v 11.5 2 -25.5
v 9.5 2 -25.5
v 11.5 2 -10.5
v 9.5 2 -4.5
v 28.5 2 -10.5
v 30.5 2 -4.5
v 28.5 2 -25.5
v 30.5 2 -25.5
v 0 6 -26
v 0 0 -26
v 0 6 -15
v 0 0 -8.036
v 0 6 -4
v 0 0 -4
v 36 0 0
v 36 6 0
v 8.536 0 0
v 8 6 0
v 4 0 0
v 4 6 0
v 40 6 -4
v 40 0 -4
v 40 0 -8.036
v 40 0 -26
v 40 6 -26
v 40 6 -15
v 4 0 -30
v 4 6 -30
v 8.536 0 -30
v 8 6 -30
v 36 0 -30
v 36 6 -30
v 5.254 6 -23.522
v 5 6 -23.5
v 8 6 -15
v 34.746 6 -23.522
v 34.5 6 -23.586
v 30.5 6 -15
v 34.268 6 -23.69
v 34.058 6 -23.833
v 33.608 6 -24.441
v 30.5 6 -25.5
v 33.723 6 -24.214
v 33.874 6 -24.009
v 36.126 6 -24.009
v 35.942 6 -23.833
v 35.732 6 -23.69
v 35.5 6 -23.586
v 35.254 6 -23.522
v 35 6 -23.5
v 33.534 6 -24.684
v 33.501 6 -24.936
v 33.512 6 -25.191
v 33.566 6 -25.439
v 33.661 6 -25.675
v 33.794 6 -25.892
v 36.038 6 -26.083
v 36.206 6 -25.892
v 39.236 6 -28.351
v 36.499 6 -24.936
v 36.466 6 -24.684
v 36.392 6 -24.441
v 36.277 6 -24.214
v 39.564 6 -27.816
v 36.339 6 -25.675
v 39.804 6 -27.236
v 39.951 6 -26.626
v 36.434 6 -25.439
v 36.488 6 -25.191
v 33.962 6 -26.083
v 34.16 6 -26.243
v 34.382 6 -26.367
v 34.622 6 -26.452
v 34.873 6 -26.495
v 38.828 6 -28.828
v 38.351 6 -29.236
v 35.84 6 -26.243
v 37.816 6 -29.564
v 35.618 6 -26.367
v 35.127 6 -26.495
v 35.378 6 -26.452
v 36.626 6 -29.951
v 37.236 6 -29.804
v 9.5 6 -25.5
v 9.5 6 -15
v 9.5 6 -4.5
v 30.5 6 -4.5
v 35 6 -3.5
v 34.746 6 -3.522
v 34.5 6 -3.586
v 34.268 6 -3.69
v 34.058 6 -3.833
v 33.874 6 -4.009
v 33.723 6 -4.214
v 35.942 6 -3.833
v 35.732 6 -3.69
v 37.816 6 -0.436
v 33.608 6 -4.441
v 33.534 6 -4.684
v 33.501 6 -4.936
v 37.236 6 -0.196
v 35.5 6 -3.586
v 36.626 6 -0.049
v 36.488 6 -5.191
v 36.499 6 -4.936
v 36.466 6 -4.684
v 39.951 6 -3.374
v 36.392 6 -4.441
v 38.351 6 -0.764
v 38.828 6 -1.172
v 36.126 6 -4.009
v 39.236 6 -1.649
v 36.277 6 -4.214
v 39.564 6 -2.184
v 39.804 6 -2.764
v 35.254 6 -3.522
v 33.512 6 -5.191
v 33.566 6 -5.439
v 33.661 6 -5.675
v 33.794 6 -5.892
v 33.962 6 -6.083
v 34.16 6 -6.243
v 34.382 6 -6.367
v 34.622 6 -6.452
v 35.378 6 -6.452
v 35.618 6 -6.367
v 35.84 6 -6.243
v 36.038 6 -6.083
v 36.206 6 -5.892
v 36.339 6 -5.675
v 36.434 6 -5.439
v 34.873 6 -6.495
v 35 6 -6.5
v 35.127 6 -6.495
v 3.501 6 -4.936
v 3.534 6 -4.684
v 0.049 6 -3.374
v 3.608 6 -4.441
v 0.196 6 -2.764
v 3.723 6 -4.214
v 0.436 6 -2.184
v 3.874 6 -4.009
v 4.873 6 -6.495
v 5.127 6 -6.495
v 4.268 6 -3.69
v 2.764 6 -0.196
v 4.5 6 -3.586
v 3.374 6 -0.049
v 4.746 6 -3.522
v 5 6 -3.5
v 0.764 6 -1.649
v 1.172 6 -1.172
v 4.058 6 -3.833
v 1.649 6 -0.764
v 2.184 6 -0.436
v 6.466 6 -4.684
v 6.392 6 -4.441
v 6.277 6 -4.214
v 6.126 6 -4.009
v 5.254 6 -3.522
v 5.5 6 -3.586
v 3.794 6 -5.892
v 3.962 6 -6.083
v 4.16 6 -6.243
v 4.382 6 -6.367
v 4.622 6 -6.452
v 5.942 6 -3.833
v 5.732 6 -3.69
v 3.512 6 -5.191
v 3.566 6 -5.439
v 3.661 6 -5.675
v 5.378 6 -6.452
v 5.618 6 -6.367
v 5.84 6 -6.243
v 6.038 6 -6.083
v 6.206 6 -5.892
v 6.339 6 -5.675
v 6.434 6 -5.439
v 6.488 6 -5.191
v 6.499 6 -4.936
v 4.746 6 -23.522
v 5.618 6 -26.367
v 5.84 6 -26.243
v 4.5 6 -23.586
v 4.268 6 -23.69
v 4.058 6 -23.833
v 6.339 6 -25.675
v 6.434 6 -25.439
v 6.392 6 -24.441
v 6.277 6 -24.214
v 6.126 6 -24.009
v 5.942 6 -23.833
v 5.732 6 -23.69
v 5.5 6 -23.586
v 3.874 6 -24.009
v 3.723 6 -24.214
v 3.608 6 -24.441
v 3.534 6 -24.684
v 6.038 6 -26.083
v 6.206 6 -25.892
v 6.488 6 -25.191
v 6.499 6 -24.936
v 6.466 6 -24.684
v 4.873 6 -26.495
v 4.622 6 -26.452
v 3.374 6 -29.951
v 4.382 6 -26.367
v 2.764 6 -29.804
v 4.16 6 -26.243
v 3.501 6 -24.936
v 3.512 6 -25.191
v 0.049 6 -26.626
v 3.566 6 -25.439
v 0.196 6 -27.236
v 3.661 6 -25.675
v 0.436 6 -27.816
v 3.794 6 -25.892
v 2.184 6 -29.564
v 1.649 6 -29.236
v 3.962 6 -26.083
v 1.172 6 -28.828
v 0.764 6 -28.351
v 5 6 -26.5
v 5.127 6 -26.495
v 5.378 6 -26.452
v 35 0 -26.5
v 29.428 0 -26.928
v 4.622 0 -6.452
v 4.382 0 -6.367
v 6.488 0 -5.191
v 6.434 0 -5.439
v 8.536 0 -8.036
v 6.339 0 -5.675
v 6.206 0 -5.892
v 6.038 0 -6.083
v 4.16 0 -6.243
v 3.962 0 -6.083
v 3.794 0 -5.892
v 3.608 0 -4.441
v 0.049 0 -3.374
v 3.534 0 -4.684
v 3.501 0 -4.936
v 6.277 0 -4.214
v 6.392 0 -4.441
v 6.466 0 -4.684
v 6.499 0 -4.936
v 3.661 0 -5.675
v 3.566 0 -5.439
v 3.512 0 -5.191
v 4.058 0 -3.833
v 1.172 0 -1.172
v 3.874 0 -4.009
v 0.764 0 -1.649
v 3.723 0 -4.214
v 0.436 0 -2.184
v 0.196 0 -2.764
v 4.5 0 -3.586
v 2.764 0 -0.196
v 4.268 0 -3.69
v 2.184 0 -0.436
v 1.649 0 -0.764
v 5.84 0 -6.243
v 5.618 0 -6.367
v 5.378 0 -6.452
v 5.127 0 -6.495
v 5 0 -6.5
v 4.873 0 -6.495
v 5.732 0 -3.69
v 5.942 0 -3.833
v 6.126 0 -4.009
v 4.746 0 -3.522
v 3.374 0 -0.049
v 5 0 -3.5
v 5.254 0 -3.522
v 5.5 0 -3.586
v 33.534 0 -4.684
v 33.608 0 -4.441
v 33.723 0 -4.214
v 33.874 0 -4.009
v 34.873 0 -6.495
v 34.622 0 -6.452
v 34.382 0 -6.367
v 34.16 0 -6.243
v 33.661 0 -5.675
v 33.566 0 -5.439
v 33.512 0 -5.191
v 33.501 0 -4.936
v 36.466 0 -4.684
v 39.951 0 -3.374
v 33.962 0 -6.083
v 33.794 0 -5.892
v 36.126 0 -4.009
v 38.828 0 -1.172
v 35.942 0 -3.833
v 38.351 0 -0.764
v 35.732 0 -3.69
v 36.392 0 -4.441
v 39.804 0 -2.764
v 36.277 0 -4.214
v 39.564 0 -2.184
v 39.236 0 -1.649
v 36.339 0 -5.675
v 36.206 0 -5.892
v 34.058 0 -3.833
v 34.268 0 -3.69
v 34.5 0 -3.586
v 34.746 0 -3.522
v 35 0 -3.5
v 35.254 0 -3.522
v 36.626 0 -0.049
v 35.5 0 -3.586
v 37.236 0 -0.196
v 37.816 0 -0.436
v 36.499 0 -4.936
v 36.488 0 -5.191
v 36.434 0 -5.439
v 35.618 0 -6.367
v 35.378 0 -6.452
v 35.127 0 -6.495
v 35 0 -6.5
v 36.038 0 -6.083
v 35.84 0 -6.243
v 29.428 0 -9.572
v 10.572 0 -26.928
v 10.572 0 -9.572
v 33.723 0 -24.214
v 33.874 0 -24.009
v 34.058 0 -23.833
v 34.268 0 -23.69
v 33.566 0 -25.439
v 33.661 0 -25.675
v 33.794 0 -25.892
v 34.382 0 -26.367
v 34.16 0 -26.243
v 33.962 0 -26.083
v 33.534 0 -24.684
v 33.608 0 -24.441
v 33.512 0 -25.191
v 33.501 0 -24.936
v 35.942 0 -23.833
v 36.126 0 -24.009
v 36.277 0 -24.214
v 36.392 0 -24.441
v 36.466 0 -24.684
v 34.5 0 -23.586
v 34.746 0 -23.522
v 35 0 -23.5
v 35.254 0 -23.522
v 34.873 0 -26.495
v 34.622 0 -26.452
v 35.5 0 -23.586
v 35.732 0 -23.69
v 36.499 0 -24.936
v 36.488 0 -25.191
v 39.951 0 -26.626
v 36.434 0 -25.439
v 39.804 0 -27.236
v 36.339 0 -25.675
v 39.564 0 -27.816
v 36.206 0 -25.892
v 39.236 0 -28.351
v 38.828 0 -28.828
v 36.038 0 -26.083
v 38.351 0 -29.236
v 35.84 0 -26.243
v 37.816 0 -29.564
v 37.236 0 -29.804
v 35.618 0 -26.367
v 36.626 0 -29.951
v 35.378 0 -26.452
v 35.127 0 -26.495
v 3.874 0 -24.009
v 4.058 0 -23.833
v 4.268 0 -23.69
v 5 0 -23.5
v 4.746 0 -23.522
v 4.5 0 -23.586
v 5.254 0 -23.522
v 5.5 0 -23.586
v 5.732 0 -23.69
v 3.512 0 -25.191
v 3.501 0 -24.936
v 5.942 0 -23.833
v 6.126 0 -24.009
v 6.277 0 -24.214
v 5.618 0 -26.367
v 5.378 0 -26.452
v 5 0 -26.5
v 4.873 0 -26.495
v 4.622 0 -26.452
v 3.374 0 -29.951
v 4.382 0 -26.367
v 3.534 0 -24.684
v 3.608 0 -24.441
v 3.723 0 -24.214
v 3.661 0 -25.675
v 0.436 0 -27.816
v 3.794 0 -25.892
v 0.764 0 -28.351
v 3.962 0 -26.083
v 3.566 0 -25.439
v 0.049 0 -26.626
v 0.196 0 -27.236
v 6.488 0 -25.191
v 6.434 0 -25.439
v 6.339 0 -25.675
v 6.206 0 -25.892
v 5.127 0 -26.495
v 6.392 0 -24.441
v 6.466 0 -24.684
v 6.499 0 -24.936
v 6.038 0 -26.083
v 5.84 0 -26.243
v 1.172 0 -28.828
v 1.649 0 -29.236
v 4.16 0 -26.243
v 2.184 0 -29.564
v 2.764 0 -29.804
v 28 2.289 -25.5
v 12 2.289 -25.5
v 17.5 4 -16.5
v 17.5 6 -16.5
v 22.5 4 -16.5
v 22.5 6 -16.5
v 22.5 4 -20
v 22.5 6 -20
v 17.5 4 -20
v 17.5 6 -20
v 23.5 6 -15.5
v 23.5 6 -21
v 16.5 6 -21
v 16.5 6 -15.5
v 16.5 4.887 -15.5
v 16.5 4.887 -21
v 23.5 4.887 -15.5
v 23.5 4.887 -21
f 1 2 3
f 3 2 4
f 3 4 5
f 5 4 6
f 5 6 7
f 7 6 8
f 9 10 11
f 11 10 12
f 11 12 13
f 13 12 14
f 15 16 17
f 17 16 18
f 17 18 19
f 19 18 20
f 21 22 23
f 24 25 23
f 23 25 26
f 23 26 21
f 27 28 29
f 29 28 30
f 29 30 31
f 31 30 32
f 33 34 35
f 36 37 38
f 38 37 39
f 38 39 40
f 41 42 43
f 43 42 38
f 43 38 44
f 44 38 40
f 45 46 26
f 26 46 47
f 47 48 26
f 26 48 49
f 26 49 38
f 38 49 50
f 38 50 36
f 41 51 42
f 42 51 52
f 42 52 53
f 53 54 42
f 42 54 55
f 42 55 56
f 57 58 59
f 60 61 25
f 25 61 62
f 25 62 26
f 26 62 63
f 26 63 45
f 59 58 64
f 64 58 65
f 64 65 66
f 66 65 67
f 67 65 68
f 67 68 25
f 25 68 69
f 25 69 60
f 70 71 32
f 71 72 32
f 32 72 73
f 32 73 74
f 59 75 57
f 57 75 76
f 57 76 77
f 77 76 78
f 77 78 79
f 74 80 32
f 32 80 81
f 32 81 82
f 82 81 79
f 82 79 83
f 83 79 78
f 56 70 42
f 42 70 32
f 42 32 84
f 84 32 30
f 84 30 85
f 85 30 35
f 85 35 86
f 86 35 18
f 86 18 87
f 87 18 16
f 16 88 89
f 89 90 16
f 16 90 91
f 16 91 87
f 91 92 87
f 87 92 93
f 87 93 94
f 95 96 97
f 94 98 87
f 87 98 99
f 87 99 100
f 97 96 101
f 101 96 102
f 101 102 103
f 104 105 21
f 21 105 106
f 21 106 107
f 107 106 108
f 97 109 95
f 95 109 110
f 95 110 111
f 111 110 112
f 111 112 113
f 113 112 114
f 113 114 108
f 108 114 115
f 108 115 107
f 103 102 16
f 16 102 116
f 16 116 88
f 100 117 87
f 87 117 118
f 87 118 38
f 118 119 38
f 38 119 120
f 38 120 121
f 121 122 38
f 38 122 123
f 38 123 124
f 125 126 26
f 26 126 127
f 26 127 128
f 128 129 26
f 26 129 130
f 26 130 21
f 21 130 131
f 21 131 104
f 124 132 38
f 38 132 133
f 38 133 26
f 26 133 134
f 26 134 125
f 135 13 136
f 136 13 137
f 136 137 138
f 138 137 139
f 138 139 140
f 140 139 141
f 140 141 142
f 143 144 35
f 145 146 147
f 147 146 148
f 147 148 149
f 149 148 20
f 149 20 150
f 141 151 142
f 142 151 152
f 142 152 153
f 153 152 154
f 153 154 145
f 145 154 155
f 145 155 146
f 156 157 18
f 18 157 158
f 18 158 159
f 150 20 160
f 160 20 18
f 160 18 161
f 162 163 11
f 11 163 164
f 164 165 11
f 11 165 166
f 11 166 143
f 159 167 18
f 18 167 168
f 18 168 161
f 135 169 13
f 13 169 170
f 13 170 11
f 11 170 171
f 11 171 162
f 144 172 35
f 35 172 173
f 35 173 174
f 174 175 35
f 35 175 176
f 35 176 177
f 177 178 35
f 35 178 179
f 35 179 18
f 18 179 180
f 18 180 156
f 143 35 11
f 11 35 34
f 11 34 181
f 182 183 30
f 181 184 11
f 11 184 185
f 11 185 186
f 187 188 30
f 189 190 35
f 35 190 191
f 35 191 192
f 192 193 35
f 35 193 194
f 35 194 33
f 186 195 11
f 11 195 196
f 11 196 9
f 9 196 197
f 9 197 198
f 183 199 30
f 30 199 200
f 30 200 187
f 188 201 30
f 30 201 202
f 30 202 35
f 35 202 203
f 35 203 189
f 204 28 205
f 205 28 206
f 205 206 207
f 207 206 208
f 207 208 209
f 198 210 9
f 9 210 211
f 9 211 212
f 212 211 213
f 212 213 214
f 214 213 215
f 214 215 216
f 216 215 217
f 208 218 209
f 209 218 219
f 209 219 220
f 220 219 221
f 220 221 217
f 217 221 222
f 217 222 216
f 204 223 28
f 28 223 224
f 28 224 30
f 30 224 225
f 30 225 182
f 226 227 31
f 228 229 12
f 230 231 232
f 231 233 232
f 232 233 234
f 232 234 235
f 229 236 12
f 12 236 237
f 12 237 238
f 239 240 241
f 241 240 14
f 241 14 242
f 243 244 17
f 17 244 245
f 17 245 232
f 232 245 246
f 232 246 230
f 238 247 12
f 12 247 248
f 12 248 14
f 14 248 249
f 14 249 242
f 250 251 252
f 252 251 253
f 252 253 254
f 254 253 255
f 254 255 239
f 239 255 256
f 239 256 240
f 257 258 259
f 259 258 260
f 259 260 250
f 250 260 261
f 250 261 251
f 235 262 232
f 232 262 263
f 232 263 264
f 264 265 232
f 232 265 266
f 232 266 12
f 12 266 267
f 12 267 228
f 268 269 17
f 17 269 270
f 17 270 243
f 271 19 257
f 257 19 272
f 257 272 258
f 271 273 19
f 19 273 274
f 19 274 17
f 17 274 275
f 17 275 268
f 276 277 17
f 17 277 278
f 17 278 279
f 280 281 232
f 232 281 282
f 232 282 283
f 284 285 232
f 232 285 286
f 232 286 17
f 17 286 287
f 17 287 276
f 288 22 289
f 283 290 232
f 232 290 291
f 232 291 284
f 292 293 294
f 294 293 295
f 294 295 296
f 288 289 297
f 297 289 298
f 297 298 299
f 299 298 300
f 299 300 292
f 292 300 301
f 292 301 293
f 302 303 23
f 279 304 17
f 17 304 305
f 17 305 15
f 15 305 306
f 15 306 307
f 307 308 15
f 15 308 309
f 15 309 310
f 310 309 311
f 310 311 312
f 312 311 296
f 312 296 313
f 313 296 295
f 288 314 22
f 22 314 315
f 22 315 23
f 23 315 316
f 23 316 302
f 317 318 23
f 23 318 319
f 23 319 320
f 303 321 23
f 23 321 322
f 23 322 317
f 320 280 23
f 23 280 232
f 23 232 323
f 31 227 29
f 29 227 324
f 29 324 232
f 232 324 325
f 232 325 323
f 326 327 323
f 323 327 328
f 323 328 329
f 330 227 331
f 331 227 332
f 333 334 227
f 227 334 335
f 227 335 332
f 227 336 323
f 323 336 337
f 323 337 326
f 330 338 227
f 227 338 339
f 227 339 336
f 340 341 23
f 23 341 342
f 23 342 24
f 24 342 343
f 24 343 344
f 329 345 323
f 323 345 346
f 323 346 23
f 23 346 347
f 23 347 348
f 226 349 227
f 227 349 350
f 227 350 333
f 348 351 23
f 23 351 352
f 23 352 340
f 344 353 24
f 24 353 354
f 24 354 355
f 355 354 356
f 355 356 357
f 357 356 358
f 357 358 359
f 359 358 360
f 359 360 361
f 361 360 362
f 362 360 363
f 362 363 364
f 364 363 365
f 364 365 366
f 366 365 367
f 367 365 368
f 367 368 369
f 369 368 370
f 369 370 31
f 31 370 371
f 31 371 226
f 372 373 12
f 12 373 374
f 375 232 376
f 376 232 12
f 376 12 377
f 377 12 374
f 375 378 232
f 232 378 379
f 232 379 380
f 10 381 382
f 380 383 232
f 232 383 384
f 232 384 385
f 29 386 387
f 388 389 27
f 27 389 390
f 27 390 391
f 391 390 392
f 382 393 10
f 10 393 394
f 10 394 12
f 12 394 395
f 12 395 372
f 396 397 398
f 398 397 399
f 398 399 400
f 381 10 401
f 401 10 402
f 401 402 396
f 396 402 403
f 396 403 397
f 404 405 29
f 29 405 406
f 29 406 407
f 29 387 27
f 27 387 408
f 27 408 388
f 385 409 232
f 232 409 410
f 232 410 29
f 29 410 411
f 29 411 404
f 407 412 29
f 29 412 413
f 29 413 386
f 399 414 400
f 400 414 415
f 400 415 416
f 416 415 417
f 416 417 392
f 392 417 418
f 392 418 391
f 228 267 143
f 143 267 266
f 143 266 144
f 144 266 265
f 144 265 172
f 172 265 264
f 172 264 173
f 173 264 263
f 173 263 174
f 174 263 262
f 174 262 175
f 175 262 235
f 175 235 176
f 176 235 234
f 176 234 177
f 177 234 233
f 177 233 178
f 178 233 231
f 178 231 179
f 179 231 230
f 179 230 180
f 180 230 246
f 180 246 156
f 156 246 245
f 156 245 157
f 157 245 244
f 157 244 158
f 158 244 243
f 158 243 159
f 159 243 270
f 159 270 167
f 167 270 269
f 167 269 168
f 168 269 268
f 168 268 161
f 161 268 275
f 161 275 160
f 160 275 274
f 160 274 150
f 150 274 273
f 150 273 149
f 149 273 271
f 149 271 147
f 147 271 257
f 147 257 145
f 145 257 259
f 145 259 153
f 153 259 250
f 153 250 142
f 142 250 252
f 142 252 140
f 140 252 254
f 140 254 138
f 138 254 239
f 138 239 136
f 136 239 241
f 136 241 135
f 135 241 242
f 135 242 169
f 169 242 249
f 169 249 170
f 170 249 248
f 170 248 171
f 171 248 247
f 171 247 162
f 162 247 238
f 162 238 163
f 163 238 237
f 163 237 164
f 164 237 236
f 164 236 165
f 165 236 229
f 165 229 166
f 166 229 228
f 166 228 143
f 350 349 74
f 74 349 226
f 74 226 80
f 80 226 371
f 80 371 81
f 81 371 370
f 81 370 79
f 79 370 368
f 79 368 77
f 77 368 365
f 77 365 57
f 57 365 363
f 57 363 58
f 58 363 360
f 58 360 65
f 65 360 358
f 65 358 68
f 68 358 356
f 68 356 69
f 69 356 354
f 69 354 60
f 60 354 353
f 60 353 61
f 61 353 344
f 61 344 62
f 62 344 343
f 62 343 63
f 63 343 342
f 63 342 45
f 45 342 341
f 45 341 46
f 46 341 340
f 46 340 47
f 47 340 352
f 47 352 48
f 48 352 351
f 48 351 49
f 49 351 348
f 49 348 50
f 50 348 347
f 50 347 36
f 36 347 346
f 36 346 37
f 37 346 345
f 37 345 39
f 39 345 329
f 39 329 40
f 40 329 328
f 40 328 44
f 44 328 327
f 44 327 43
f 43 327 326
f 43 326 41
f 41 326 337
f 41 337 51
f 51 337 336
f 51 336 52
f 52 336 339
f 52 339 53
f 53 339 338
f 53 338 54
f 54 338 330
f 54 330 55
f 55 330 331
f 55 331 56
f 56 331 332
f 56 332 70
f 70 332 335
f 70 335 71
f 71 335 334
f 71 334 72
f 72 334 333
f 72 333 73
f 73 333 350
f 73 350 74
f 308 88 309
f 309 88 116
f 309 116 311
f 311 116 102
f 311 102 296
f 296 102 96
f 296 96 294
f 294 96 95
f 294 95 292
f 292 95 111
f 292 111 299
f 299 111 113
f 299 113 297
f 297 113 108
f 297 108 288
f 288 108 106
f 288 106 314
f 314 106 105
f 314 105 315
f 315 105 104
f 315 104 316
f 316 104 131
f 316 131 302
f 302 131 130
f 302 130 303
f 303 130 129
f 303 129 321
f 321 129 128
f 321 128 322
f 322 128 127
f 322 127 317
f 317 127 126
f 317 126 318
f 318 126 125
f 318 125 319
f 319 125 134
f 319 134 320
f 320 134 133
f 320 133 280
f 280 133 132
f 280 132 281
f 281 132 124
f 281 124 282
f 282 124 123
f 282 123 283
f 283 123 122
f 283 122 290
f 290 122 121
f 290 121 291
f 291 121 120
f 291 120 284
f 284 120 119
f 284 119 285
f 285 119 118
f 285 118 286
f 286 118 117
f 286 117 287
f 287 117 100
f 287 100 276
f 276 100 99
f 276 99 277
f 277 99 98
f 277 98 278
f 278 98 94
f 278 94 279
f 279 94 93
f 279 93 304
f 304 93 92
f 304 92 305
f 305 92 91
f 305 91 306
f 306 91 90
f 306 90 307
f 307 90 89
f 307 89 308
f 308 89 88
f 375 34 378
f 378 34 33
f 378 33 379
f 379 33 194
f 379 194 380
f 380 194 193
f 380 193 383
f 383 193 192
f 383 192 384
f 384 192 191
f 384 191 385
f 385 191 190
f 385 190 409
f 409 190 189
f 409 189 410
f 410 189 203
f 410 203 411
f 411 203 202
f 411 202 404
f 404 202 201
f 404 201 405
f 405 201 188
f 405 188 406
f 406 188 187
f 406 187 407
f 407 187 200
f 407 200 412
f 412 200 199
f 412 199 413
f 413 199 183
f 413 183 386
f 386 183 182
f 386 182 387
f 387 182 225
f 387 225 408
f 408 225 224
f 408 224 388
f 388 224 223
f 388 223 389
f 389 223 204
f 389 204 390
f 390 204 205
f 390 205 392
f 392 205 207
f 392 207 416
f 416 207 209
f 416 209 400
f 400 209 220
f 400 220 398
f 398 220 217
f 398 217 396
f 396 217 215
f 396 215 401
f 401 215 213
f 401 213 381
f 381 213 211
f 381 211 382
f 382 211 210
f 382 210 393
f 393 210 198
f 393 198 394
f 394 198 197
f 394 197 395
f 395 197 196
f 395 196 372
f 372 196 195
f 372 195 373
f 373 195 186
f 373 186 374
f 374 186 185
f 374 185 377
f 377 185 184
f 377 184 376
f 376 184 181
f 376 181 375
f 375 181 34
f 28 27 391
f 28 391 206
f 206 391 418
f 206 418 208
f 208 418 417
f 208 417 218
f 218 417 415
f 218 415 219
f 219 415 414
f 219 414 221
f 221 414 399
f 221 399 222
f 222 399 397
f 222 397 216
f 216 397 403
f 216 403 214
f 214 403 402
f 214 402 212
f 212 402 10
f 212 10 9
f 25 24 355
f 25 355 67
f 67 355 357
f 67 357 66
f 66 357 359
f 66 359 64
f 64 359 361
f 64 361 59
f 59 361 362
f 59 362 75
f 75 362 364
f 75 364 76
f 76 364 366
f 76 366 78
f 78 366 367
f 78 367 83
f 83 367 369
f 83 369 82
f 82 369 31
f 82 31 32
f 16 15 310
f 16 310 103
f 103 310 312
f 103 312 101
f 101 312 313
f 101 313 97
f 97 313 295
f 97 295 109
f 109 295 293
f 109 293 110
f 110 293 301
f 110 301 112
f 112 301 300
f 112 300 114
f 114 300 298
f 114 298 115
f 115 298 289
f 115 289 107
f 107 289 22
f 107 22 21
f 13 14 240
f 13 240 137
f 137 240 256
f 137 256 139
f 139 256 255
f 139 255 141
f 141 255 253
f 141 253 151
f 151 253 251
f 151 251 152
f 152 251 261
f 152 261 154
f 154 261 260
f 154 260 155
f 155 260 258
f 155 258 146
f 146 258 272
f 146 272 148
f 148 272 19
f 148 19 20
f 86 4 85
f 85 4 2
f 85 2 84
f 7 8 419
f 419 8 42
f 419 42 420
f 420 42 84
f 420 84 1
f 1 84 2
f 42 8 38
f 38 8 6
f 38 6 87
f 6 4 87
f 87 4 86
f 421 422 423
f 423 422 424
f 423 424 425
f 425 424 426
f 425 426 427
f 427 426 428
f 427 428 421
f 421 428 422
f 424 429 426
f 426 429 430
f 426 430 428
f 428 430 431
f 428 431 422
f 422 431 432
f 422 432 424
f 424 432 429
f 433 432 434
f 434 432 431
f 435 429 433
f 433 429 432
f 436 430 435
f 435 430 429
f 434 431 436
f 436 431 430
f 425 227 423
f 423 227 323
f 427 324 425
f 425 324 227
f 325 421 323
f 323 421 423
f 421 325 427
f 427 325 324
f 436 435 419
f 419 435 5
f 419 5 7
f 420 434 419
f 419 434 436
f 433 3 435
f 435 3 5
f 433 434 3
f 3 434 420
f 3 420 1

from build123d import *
from OCP.BRepFilletAPI import BRepFilletAPI_MakeChamfer

# Parameters (mm, degrees)
SKETCH1_W           = 40
SKETCH1_H           = 30
BOSS_EXTRUDE1_DEPTH = 6
SKETCH2_R           = 1.5
CUT_EXTRUDE1_DEPTH  = 6
FILLET1_R           = 4
SKETCH3_W           = 21
SKETCH3_H           = 21
CUT_EXTRUDE2_DEPTH  = 4
SKETCH6_W           = 5
SKETCH6_H           = 3.5
CUT_EXTRUDE3_DEPTH  = 2
SKETCH7_W           = 7
SKETCH7_H           = 5.5
SKETCH7_W_2         = 5
SKETCH7_H_2         = 3.5
BOSS_EXTRUDE2_DEPTH = 4
CHAMFER1_SIZE       = 4
CHAMFER1_SIZE2      = 6.92820323
CHAMFER2_SIZE       = 2.886751346
CHAMFER2_SIZE_2     = 5


with BuildPart() as part:
    # Sketch1 → Boss-Extrude1 (new body)
    with BuildSketch(Plane(origin=(0, 0, 0), x_dir=(1, 0, 0), z_dir=(0, 1, 0))):
        with Locations((20, 15)):
            Rectangle(SKETCH1_W, SKETCH1_H)
    extrude(amount=BOSS_EXTRUDE1_DEPTH)

    # Sketch2 → Cut-Extrude1 (cut)
    with BuildSketch(Plane(origin=(0, 6, 0), x_dir=(1, 0, 0), z_dir=(0, 1, 0))):
        with Locations(Location((5, 5, 0), (0, 0, 270))):
            Circle(SKETCH2_R)
        with Locations(Location((5, 25, 0), (0, 0, 90))):
            Circle(SKETCH2_R)
        with Locations(Location((35, 5, 0), (0, 0, 90))):
            Circle(SKETCH2_R)
        with Locations(Location((35, 25, 0), (0, 0, 270))):
            Circle(SKETCH2_R)
    extrude(amount=-CUT_EXTRUDE1_DEPTH, mode=Mode.SUBTRACT)

    # Fillet1
    fillet1_edges = [part.edges().sort_by_distance(p)[0] for p in [
        (0, 3, -30),
        (40, 3, -30),
        (40, 3, 0),
        (0, 3, 0),
    ]]
    fillet(fillet1_edges, radius=FILLET1_R)

    # Sketch3 → Cut-Extrude2 (cut)
    with BuildSketch(Plane(origin=(0, 6, 0), x_dir=(1, 0, 0), z_dir=(0, 1, 0))):
        with Locations((20, 15)):
            Rectangle(SKETCH3_W, SKETCH3_H)
    extrude(amount=-CUT_EXTRUDE2_DEPTH, mode=Mode.SUBTRACT)

    # Sketch6 → Cut-Extrude3 (cut)
    with BuildSketch(Plane(origin=(0, 2, 0), x_dir=(1, 0, 0), z_dir=(0, 1, 0))):
        with Locations((20, 18.25)):
            Rectangle(SKETCH6_W, SKETCH6_H)
    extrude(amount=-CUT_EXTRUDE3_DEPTH, mode=Mode.SUBTRACT)

    # Sketch7 → Boss-Extrude2 (add)
    with BuildSketch(Plane(origin=(0, 2, 0), x_dir=(1, 0, 0), z_dir=(0, 1, 0))):
        with Locations((20, 18.25)):
            Rectangle(SKETCH7_W, SKETCH7_H)
        with Locations((20, 18.25)):
            Rectangle(SKETCH7_W_2, SKETCH7_H_2, mode=Mode.SUBTRACT)
    extrude(amount=BOSS_EXTRUDE2_DEPTH)

    # Chamfer1: one chamfer whose edges measure the first distance from different faces: ONE call of the kernel's chamfer builder (chamfer() names one face for all edges)
    chamfer1_edges_1 = [part.edges().sort_by_distance(p)[0] for p in [
        (20, 0, -16.5),
    ]]
    chamfer1_side_1 = [part.faces().sort_by_distance(p)[0] for p in [
        (20, 3, -16.5),
    ]]
    chamfer1_edges_2 = [part.edges().sort_by_distance(p)[0] for p in [
        (22.5, 0, -18.25),
    ]]
    chamfer1_side_2 = [part.faces().sort_by_distance(p)[0] for p in [
        (22.5, 3, -18.25),
    ]]
    chamfer1_edges_3 = [part.edges().sort_by_distance(p)[0] for p in [
        (20, 0, -20),
    ]]
    chamfer1_side_3 = [part.faces().sort_by_distance(p)[0] for p in [
        (20, 3, -20),
    ]]
    chamfer1_edges_4 = [part.edges().sort_by_distance(p)[0] for p in [
        (17.5, 0, -18.25),
    ]]
    chamfer1_side_4 = [part.faces().sort_by_distance(p)[0] for p in [
        (17.5, 3, -18.25),
    ]]
    chamfer1 = BRepFilletAPI_MakeChamfer(part.part.solid().wrapped)
    for e in chamfer1_edges_1:
        chamfer1.Add(CHAMFER1_SIZE, CHAMFER1_SIZE2, e.wrapped, chamfer1_side_1[0].wrapped)  # the first distance lies on this face
    for e in chamfer1_edges_2:
        chamfer1.Add(CHAMFER1_SIZE, CHAMFER1_SIZE2, e.wrapped, chamfer1_side_2[0].wrapped)  # the first distance lies on this face
    for e in chamfer1_edges_3:
        chamfer1.Add(CHAMFER1_SIZE, CHAMFER1_SIZE2, e.wrapped, chamfer1_side_3[0].wrapped)  # the first distance lies on this face
    for e in chamfer1_edges_4:
        chamfer1.Add(CHAMFER1_SIZE, CHAMFER1_SIZE2, e.wrapped, chamfer1_side_4[0].wrapped)  # the first distance lies on this face
    add(Compound.cast(chamfer1.Shape()), mode=Mode.REPLACE)

    # Chamfer2
    # the kernel refuses this chamfer: 5, 2.886751346 mm, written as the material it adds along each edge
    with BuildSketch(Plane(origin=(16.5, 2, -33.935428773), x_dir=(0, 1, 0), z_dir=(0, 0, 1))) as chamfer2_piece_1_section:
        Polygon((CHAMFER2_SIZE, 0), (0, CHAMFER2_SIZE_2), (0, 0), align=None)
    chamfer2_piece_1 = extrude(amount=31.370857546, mode=Mode.PRIVATE)
    chamfer2_piece_1 = split(chamfer2_piece_1, bisect_by=Plane(origin=(15.883974596, 3.066987298, -33.935428773), z_dir=(-0.499999999999998, 0.8660254037844398, 0)), keep=Keep.TOP, mode=Mode.PRIVATE)
    chamfer2_piece_1 = split(chamfer2_piece_1, bisect_by=Plane(origin=(16.5, -1.436141454, -31.95157158), z_dir=(0, -0.8660254037844382, 0.500000000000001)), keep=Keep.TOP, mode=Mode.PRIVATE)
    chamfer2_piece_1 = split(chamfer2_piece_1, bisect_by=Plane(origin=(16.5, 12.147838333, -28.07657158), z_dir=(0, -0.8660254037844382, -0.500000000000001)), keep=Keep.TOP, mode=Mode.PRIVATE)
    with BuildSketch(Plane(origin=(16.5, 2, -33.935428773), x_dir=(0, 1, 0), z_dir=(0, 0, 1))) as chamfer2_piece_2_section:
        Polygon((CHAMFER2_SIZE, 0), (0, CHAMFER2_SIZE_2), (0, 0), align=None)
    chamfer2_piece_2 = extrude(amount=31.370857546, mode=Mode.PRIVATE)
    chamfer2_piece_2 = split(chamfer2_piece_2, bisect_by=Plane(origin=(16.5, -2.534217665, -31.317596984), z_dir=(0, 0.8660254037844398, -0.499999999999998)), keep=Keep.TOP, mode=Mode.PRIVATE)
    chamfer2_piece_2 = split(chamfer2_piece_2, bisect_by=Plane(origin=(16.5, -1.436141454, -31.95157158), z_dir=(0, -0.8660254037844382, 0.500000000000001)), keep=Keep.TOP, mode=Mode.PRIVATE)
    with BuildSketch(Plane(origin=(16.5, 2, -33.935428773), x_dir=(0, 1, 0), z_dir=(0, 0, 1))) as chamfer2_piece_3_section:
        Polygon((CHAMFER2_SIZE, 0), (0, CHAMFER2_SIZE_2), (0, 0), align=None)
    chamfer2_piece_3 = extrude(amount=31.370857546, mode=Mode.PRIVATE)
    chamfer2_piece_3 = split(chamfer2_piece_3, bisect_by=Plane(origin=(16.5, 11.049762122, -28.710546176), z_dir=(0, 0.8660254037844398, 0.499999999999998)), keep=Keep.TOP, mode=Mode.PRIVATE)
    chamfer2_piece_3 = split(chamfer2_piece_3, bisect_by=Plane(origin=(16.5, 12.147838333, -28.07657158), z_dir=(0, -0.8660254037844382, -0.500000000000001)), keep=Keep.TOP, mode=Mode.PRIVATE)
    with BuildSketch(Plane(origin=(3.564571227, 2, -15.5), x_dir=(0, 1, 0), z_dir=(1, 0, 0))) as chamfer2_piece_4_section:
        Polygon((CHAMFER2_SIZE, 0), (0, CHAMFER2_SIZE_2), (0, 0), align=None)
    chamfer2_piece_4 = extrude(amount=32.870857546, mode=Mode.PRIVATE)
    chamfer2_piece_4 = split(chamfer2_piece_4, bisect_by=Plane(origin=(3.564571227, 3.066987298, -14.883974596), z_dir=(0, 0.8660254037844398, 0.499999999999998)), keep=Keep.TOP, mode=Mode.PRIVATE)
    chamfer2_piece_4 = split(chamfer2_piece_4, bisect_by=Plane(origin=(9.79842842, 12.797357386, -15.5), z_dir=(-0.500000000000001, -0.8660254037844382, 0)), keep=Keep.TOP, mode=Mode.PRIVATE)
    chamfer2_piece_4 = split(chamfer2_piece_4, bisect_by=Plane(origin=(5.54842842, -1.436141454, -15.5), z_dir=(0.500000000000001, -0.8660254037844382, 0)), keep=Keep.TOP, mode=Mode.PRIVATE)
    with BuildSketch(Plane(origin=(3.564571227, 2, -15.5), x_dir=(0, 1, 0), z_dir=(1, 0, 0))) as chamfer2_piece_5_section:
        Polygon((CHAMFER2_SIZE, 0), (0, CHAMFER2_SIZE_2), (0, 0), align=None)
    chamfer2_piece_5 = extrude(amount=32.870857546, mode=Mode.PRIVATE)
    chamfer2_piece_5 = split(chamfer2_piece_5, bisect_by=Plane(origin=(6.182403016, -2.534217665, -15.5), z_dir=(-0.499999999999998, 0.8660254037844398, 0)), keep=Keep.TOP, mode=Mode.PRIVATE)
    chamfer2_piece_5 = split(chamfer2_piece_5, bisect_by=Plane(origin=(5.54842842, -1.436141454, -15.5), z_dir=(0.500000000000001, -0.8660254037844382, 0)), keep=Keep.TOP, mode=Mode.PRIVATE)
    with BuildSketch(Plane(origin=(23.5, 2, -2.564571227), x_dir=(0, 1, 0), z_dir=(0, 0, -1))) as chamfer2_piece_6_section:
        Polygon((CHAMFER2_SIZE, 0), (0, CHAMFER2_SIZE_2), (0, 0), align=None)
    chamfer2_piece_6 = extrude(amount=31.370857546, mode=Mode.PRIVATE)
    chamfer2_piece_6 = split(chamfer2_piece_6, bisect_by=Plane(origin=(24.116025404, 3.066987298, -2.564571227), z_dir=(0.499999999999998, 0.8660254037844398, 0)), keep=Keep.TOP, mode=Mode.PRIVATE)
    chamfer2_piece_6 = split(chamfer2_piece_6, bisect_by=Plane(origin=(23.5, 12.147838333, -8.42342842), z_dir=(0, -0.8660254037844382, 0.500000000000001)), keep=Keep.TOP, mode=Mode.PRIVATE)
    chamfer2_piece_6 = split(chamfer2_piece_6, bisect_by=Plane(origin=(23.5, -1.436141454, -4.54842842), z_dir=(0, -0.8660254037844382, -0.500000000000001)), keep=Keep.TOP, mode=Mode.PRIVATE)
    with BuildSketch(Plane(origin=(23.5, 2, -2.564571227), x_dir=(0, 1, 0), z_dir=(0, 0, -1))) as chamfer2_piece_7_section:
        Polygon((CHAMFER2_SIZE, 0), (0, CHAMFER2_SIZE_2), (0, 0), align=None)
    chamfer2_piece_7 = extrude(amount=31.370857546, mode=Mode.PRIVATE)
    chamfer2_piece_7 = split(chamfer2_piece_7, bisect_by=Plane(origin=(23.5, -2.534217665, -5.182403016), z_dir=(0, 0.8660254037844398, 0.499999999999998)), keep=Keep.TOP, mode=Mode.PRIVATE)
    chamfer2_piece_7 = split(chamfer2_piece_7, bisect_by=Plane(origin=(23.5, -1.436141454, -4.54842842), z_dir=(0, -0.8660254037844382, -0.500000000000001)), keep=Keep.TOP, mode=Mode.PRIVATE)
    with BuildSketch(Plane(origin=(23.5, 2, -2.564571227), x_dir=(0, 1, 0), z_dir=(0, 0, -1))) as chamfer2_piece_8_section:
        Polygon((CHAMFER2_SIZE, 0), (0, CHAMFER2_SIZE_2), (0, 0), align=None)
    chamfer2_piece_8 = extrude(amount=31.370857546, mode=Mode.PRIVATE)
    chamfer2_piece_8 = split(chamfer2_piece_8, bisect_by=Plane(origin=(23.5, 11.049762122, -7.789453824), z_dir=(0, 0.8660254037844398, -0.499999999999998)), keep=Keep.TOP, mode=Mode.PRIVATE)
    chamfer2_piece_8 = split(chamfer2_piece_8, bisect_by=Plane(origin=(23.5, 12.147838333, -8.42342842), z_dir=(0, -0.8660254037844382, 0.500000000000001)), keep=Keep.TOP, mode=Mode.PRIVATE)
    with BuildSketch(Plane(origin=(36.435428773, 2, -21), x_dir=(0, 1, 0), z_dir=(-1, 0, 0))) as chamfer2_piece_9_section:
        Polygon((CHAMFER2_SIZE, 0), (0, CHAMFER2_SIZE_2), (0, 0), align=None)
    chamfer2_piece_9 = extrude(amount=32.870857546, mode=Mode.PRIVATE)
    chamfer2_piece_9 = split(chamfer2_piece_9, bisect_by=Plane(origin=(36.435428773, 3.066987298, -21.616025404), z_dir=(0, 0.8660254037844398, -0.499999999999998)), keep=Keep.TOP, mode=Mode.PRIVATE)
    chamfer2_piece_9 = split(chamfer2_piece_9, bisect_by=Plane(origin=(34.45157158, -1.436141454, -21), z_dir=(-0.500000000000001, -0.8660254037844382, 0)), keep=Keep.TOP, mode=Mode.PRIVATE)
    chamfer2_piece_9 = split(chamfer2_piece_9, bisect_by=Plane(origin=(30.20157158, 12.797357386, -21), z_dir=(0.500000000000001, -0.8660254037844382, 0)), keep=Keep.TOP, mode=Mode.PRIVATE)
    with BuildSketch(Plane(origin=(36.435428773, 2, -21), x_dir=(0, 1, 0), z_dir=(-1, 0, 0))) as chamfer2_piece_10_section:
        Polygon((CHAMFER2_SIZE, 0), (0, CHAMFER2_SIZE_2), (0, 0), align=None)
    chamfer2_piece_10 = extrude(amount=32.870857546, mode=Mode.PRIVATE)
    chamfer2_piece_10 = split(chamfer2_piece_10, bisect_by=Plane(origin=(30.835546176, 11.699281175, -21), z_dir=(-0.499999999999998, 0.8660254037844398, 0)), keep=Keep.TOP, mode=Mode.PRIVATE)
    chamfer2_piece_10 = split(chamfer2_piece_10, bisect_by=Plane(origin=(30.20157158, 12.797357386, -21), z_dir=(0.500000000000001, -0.8660254037844382, 0)), keep=Keep.TOP, mode=Mode.PRIVATE)
    add([chamfer2_piece_1, chamfer2_piece_2, chamfer2_piece_3, chamfer2_piece_4, chamfer2_piece_5, chamfer2_piece_6, chamfer2_piece_7, chamfer2_piece_8, chamfer2_piece_9, chamfer2_piece_10])


solid = part.part
